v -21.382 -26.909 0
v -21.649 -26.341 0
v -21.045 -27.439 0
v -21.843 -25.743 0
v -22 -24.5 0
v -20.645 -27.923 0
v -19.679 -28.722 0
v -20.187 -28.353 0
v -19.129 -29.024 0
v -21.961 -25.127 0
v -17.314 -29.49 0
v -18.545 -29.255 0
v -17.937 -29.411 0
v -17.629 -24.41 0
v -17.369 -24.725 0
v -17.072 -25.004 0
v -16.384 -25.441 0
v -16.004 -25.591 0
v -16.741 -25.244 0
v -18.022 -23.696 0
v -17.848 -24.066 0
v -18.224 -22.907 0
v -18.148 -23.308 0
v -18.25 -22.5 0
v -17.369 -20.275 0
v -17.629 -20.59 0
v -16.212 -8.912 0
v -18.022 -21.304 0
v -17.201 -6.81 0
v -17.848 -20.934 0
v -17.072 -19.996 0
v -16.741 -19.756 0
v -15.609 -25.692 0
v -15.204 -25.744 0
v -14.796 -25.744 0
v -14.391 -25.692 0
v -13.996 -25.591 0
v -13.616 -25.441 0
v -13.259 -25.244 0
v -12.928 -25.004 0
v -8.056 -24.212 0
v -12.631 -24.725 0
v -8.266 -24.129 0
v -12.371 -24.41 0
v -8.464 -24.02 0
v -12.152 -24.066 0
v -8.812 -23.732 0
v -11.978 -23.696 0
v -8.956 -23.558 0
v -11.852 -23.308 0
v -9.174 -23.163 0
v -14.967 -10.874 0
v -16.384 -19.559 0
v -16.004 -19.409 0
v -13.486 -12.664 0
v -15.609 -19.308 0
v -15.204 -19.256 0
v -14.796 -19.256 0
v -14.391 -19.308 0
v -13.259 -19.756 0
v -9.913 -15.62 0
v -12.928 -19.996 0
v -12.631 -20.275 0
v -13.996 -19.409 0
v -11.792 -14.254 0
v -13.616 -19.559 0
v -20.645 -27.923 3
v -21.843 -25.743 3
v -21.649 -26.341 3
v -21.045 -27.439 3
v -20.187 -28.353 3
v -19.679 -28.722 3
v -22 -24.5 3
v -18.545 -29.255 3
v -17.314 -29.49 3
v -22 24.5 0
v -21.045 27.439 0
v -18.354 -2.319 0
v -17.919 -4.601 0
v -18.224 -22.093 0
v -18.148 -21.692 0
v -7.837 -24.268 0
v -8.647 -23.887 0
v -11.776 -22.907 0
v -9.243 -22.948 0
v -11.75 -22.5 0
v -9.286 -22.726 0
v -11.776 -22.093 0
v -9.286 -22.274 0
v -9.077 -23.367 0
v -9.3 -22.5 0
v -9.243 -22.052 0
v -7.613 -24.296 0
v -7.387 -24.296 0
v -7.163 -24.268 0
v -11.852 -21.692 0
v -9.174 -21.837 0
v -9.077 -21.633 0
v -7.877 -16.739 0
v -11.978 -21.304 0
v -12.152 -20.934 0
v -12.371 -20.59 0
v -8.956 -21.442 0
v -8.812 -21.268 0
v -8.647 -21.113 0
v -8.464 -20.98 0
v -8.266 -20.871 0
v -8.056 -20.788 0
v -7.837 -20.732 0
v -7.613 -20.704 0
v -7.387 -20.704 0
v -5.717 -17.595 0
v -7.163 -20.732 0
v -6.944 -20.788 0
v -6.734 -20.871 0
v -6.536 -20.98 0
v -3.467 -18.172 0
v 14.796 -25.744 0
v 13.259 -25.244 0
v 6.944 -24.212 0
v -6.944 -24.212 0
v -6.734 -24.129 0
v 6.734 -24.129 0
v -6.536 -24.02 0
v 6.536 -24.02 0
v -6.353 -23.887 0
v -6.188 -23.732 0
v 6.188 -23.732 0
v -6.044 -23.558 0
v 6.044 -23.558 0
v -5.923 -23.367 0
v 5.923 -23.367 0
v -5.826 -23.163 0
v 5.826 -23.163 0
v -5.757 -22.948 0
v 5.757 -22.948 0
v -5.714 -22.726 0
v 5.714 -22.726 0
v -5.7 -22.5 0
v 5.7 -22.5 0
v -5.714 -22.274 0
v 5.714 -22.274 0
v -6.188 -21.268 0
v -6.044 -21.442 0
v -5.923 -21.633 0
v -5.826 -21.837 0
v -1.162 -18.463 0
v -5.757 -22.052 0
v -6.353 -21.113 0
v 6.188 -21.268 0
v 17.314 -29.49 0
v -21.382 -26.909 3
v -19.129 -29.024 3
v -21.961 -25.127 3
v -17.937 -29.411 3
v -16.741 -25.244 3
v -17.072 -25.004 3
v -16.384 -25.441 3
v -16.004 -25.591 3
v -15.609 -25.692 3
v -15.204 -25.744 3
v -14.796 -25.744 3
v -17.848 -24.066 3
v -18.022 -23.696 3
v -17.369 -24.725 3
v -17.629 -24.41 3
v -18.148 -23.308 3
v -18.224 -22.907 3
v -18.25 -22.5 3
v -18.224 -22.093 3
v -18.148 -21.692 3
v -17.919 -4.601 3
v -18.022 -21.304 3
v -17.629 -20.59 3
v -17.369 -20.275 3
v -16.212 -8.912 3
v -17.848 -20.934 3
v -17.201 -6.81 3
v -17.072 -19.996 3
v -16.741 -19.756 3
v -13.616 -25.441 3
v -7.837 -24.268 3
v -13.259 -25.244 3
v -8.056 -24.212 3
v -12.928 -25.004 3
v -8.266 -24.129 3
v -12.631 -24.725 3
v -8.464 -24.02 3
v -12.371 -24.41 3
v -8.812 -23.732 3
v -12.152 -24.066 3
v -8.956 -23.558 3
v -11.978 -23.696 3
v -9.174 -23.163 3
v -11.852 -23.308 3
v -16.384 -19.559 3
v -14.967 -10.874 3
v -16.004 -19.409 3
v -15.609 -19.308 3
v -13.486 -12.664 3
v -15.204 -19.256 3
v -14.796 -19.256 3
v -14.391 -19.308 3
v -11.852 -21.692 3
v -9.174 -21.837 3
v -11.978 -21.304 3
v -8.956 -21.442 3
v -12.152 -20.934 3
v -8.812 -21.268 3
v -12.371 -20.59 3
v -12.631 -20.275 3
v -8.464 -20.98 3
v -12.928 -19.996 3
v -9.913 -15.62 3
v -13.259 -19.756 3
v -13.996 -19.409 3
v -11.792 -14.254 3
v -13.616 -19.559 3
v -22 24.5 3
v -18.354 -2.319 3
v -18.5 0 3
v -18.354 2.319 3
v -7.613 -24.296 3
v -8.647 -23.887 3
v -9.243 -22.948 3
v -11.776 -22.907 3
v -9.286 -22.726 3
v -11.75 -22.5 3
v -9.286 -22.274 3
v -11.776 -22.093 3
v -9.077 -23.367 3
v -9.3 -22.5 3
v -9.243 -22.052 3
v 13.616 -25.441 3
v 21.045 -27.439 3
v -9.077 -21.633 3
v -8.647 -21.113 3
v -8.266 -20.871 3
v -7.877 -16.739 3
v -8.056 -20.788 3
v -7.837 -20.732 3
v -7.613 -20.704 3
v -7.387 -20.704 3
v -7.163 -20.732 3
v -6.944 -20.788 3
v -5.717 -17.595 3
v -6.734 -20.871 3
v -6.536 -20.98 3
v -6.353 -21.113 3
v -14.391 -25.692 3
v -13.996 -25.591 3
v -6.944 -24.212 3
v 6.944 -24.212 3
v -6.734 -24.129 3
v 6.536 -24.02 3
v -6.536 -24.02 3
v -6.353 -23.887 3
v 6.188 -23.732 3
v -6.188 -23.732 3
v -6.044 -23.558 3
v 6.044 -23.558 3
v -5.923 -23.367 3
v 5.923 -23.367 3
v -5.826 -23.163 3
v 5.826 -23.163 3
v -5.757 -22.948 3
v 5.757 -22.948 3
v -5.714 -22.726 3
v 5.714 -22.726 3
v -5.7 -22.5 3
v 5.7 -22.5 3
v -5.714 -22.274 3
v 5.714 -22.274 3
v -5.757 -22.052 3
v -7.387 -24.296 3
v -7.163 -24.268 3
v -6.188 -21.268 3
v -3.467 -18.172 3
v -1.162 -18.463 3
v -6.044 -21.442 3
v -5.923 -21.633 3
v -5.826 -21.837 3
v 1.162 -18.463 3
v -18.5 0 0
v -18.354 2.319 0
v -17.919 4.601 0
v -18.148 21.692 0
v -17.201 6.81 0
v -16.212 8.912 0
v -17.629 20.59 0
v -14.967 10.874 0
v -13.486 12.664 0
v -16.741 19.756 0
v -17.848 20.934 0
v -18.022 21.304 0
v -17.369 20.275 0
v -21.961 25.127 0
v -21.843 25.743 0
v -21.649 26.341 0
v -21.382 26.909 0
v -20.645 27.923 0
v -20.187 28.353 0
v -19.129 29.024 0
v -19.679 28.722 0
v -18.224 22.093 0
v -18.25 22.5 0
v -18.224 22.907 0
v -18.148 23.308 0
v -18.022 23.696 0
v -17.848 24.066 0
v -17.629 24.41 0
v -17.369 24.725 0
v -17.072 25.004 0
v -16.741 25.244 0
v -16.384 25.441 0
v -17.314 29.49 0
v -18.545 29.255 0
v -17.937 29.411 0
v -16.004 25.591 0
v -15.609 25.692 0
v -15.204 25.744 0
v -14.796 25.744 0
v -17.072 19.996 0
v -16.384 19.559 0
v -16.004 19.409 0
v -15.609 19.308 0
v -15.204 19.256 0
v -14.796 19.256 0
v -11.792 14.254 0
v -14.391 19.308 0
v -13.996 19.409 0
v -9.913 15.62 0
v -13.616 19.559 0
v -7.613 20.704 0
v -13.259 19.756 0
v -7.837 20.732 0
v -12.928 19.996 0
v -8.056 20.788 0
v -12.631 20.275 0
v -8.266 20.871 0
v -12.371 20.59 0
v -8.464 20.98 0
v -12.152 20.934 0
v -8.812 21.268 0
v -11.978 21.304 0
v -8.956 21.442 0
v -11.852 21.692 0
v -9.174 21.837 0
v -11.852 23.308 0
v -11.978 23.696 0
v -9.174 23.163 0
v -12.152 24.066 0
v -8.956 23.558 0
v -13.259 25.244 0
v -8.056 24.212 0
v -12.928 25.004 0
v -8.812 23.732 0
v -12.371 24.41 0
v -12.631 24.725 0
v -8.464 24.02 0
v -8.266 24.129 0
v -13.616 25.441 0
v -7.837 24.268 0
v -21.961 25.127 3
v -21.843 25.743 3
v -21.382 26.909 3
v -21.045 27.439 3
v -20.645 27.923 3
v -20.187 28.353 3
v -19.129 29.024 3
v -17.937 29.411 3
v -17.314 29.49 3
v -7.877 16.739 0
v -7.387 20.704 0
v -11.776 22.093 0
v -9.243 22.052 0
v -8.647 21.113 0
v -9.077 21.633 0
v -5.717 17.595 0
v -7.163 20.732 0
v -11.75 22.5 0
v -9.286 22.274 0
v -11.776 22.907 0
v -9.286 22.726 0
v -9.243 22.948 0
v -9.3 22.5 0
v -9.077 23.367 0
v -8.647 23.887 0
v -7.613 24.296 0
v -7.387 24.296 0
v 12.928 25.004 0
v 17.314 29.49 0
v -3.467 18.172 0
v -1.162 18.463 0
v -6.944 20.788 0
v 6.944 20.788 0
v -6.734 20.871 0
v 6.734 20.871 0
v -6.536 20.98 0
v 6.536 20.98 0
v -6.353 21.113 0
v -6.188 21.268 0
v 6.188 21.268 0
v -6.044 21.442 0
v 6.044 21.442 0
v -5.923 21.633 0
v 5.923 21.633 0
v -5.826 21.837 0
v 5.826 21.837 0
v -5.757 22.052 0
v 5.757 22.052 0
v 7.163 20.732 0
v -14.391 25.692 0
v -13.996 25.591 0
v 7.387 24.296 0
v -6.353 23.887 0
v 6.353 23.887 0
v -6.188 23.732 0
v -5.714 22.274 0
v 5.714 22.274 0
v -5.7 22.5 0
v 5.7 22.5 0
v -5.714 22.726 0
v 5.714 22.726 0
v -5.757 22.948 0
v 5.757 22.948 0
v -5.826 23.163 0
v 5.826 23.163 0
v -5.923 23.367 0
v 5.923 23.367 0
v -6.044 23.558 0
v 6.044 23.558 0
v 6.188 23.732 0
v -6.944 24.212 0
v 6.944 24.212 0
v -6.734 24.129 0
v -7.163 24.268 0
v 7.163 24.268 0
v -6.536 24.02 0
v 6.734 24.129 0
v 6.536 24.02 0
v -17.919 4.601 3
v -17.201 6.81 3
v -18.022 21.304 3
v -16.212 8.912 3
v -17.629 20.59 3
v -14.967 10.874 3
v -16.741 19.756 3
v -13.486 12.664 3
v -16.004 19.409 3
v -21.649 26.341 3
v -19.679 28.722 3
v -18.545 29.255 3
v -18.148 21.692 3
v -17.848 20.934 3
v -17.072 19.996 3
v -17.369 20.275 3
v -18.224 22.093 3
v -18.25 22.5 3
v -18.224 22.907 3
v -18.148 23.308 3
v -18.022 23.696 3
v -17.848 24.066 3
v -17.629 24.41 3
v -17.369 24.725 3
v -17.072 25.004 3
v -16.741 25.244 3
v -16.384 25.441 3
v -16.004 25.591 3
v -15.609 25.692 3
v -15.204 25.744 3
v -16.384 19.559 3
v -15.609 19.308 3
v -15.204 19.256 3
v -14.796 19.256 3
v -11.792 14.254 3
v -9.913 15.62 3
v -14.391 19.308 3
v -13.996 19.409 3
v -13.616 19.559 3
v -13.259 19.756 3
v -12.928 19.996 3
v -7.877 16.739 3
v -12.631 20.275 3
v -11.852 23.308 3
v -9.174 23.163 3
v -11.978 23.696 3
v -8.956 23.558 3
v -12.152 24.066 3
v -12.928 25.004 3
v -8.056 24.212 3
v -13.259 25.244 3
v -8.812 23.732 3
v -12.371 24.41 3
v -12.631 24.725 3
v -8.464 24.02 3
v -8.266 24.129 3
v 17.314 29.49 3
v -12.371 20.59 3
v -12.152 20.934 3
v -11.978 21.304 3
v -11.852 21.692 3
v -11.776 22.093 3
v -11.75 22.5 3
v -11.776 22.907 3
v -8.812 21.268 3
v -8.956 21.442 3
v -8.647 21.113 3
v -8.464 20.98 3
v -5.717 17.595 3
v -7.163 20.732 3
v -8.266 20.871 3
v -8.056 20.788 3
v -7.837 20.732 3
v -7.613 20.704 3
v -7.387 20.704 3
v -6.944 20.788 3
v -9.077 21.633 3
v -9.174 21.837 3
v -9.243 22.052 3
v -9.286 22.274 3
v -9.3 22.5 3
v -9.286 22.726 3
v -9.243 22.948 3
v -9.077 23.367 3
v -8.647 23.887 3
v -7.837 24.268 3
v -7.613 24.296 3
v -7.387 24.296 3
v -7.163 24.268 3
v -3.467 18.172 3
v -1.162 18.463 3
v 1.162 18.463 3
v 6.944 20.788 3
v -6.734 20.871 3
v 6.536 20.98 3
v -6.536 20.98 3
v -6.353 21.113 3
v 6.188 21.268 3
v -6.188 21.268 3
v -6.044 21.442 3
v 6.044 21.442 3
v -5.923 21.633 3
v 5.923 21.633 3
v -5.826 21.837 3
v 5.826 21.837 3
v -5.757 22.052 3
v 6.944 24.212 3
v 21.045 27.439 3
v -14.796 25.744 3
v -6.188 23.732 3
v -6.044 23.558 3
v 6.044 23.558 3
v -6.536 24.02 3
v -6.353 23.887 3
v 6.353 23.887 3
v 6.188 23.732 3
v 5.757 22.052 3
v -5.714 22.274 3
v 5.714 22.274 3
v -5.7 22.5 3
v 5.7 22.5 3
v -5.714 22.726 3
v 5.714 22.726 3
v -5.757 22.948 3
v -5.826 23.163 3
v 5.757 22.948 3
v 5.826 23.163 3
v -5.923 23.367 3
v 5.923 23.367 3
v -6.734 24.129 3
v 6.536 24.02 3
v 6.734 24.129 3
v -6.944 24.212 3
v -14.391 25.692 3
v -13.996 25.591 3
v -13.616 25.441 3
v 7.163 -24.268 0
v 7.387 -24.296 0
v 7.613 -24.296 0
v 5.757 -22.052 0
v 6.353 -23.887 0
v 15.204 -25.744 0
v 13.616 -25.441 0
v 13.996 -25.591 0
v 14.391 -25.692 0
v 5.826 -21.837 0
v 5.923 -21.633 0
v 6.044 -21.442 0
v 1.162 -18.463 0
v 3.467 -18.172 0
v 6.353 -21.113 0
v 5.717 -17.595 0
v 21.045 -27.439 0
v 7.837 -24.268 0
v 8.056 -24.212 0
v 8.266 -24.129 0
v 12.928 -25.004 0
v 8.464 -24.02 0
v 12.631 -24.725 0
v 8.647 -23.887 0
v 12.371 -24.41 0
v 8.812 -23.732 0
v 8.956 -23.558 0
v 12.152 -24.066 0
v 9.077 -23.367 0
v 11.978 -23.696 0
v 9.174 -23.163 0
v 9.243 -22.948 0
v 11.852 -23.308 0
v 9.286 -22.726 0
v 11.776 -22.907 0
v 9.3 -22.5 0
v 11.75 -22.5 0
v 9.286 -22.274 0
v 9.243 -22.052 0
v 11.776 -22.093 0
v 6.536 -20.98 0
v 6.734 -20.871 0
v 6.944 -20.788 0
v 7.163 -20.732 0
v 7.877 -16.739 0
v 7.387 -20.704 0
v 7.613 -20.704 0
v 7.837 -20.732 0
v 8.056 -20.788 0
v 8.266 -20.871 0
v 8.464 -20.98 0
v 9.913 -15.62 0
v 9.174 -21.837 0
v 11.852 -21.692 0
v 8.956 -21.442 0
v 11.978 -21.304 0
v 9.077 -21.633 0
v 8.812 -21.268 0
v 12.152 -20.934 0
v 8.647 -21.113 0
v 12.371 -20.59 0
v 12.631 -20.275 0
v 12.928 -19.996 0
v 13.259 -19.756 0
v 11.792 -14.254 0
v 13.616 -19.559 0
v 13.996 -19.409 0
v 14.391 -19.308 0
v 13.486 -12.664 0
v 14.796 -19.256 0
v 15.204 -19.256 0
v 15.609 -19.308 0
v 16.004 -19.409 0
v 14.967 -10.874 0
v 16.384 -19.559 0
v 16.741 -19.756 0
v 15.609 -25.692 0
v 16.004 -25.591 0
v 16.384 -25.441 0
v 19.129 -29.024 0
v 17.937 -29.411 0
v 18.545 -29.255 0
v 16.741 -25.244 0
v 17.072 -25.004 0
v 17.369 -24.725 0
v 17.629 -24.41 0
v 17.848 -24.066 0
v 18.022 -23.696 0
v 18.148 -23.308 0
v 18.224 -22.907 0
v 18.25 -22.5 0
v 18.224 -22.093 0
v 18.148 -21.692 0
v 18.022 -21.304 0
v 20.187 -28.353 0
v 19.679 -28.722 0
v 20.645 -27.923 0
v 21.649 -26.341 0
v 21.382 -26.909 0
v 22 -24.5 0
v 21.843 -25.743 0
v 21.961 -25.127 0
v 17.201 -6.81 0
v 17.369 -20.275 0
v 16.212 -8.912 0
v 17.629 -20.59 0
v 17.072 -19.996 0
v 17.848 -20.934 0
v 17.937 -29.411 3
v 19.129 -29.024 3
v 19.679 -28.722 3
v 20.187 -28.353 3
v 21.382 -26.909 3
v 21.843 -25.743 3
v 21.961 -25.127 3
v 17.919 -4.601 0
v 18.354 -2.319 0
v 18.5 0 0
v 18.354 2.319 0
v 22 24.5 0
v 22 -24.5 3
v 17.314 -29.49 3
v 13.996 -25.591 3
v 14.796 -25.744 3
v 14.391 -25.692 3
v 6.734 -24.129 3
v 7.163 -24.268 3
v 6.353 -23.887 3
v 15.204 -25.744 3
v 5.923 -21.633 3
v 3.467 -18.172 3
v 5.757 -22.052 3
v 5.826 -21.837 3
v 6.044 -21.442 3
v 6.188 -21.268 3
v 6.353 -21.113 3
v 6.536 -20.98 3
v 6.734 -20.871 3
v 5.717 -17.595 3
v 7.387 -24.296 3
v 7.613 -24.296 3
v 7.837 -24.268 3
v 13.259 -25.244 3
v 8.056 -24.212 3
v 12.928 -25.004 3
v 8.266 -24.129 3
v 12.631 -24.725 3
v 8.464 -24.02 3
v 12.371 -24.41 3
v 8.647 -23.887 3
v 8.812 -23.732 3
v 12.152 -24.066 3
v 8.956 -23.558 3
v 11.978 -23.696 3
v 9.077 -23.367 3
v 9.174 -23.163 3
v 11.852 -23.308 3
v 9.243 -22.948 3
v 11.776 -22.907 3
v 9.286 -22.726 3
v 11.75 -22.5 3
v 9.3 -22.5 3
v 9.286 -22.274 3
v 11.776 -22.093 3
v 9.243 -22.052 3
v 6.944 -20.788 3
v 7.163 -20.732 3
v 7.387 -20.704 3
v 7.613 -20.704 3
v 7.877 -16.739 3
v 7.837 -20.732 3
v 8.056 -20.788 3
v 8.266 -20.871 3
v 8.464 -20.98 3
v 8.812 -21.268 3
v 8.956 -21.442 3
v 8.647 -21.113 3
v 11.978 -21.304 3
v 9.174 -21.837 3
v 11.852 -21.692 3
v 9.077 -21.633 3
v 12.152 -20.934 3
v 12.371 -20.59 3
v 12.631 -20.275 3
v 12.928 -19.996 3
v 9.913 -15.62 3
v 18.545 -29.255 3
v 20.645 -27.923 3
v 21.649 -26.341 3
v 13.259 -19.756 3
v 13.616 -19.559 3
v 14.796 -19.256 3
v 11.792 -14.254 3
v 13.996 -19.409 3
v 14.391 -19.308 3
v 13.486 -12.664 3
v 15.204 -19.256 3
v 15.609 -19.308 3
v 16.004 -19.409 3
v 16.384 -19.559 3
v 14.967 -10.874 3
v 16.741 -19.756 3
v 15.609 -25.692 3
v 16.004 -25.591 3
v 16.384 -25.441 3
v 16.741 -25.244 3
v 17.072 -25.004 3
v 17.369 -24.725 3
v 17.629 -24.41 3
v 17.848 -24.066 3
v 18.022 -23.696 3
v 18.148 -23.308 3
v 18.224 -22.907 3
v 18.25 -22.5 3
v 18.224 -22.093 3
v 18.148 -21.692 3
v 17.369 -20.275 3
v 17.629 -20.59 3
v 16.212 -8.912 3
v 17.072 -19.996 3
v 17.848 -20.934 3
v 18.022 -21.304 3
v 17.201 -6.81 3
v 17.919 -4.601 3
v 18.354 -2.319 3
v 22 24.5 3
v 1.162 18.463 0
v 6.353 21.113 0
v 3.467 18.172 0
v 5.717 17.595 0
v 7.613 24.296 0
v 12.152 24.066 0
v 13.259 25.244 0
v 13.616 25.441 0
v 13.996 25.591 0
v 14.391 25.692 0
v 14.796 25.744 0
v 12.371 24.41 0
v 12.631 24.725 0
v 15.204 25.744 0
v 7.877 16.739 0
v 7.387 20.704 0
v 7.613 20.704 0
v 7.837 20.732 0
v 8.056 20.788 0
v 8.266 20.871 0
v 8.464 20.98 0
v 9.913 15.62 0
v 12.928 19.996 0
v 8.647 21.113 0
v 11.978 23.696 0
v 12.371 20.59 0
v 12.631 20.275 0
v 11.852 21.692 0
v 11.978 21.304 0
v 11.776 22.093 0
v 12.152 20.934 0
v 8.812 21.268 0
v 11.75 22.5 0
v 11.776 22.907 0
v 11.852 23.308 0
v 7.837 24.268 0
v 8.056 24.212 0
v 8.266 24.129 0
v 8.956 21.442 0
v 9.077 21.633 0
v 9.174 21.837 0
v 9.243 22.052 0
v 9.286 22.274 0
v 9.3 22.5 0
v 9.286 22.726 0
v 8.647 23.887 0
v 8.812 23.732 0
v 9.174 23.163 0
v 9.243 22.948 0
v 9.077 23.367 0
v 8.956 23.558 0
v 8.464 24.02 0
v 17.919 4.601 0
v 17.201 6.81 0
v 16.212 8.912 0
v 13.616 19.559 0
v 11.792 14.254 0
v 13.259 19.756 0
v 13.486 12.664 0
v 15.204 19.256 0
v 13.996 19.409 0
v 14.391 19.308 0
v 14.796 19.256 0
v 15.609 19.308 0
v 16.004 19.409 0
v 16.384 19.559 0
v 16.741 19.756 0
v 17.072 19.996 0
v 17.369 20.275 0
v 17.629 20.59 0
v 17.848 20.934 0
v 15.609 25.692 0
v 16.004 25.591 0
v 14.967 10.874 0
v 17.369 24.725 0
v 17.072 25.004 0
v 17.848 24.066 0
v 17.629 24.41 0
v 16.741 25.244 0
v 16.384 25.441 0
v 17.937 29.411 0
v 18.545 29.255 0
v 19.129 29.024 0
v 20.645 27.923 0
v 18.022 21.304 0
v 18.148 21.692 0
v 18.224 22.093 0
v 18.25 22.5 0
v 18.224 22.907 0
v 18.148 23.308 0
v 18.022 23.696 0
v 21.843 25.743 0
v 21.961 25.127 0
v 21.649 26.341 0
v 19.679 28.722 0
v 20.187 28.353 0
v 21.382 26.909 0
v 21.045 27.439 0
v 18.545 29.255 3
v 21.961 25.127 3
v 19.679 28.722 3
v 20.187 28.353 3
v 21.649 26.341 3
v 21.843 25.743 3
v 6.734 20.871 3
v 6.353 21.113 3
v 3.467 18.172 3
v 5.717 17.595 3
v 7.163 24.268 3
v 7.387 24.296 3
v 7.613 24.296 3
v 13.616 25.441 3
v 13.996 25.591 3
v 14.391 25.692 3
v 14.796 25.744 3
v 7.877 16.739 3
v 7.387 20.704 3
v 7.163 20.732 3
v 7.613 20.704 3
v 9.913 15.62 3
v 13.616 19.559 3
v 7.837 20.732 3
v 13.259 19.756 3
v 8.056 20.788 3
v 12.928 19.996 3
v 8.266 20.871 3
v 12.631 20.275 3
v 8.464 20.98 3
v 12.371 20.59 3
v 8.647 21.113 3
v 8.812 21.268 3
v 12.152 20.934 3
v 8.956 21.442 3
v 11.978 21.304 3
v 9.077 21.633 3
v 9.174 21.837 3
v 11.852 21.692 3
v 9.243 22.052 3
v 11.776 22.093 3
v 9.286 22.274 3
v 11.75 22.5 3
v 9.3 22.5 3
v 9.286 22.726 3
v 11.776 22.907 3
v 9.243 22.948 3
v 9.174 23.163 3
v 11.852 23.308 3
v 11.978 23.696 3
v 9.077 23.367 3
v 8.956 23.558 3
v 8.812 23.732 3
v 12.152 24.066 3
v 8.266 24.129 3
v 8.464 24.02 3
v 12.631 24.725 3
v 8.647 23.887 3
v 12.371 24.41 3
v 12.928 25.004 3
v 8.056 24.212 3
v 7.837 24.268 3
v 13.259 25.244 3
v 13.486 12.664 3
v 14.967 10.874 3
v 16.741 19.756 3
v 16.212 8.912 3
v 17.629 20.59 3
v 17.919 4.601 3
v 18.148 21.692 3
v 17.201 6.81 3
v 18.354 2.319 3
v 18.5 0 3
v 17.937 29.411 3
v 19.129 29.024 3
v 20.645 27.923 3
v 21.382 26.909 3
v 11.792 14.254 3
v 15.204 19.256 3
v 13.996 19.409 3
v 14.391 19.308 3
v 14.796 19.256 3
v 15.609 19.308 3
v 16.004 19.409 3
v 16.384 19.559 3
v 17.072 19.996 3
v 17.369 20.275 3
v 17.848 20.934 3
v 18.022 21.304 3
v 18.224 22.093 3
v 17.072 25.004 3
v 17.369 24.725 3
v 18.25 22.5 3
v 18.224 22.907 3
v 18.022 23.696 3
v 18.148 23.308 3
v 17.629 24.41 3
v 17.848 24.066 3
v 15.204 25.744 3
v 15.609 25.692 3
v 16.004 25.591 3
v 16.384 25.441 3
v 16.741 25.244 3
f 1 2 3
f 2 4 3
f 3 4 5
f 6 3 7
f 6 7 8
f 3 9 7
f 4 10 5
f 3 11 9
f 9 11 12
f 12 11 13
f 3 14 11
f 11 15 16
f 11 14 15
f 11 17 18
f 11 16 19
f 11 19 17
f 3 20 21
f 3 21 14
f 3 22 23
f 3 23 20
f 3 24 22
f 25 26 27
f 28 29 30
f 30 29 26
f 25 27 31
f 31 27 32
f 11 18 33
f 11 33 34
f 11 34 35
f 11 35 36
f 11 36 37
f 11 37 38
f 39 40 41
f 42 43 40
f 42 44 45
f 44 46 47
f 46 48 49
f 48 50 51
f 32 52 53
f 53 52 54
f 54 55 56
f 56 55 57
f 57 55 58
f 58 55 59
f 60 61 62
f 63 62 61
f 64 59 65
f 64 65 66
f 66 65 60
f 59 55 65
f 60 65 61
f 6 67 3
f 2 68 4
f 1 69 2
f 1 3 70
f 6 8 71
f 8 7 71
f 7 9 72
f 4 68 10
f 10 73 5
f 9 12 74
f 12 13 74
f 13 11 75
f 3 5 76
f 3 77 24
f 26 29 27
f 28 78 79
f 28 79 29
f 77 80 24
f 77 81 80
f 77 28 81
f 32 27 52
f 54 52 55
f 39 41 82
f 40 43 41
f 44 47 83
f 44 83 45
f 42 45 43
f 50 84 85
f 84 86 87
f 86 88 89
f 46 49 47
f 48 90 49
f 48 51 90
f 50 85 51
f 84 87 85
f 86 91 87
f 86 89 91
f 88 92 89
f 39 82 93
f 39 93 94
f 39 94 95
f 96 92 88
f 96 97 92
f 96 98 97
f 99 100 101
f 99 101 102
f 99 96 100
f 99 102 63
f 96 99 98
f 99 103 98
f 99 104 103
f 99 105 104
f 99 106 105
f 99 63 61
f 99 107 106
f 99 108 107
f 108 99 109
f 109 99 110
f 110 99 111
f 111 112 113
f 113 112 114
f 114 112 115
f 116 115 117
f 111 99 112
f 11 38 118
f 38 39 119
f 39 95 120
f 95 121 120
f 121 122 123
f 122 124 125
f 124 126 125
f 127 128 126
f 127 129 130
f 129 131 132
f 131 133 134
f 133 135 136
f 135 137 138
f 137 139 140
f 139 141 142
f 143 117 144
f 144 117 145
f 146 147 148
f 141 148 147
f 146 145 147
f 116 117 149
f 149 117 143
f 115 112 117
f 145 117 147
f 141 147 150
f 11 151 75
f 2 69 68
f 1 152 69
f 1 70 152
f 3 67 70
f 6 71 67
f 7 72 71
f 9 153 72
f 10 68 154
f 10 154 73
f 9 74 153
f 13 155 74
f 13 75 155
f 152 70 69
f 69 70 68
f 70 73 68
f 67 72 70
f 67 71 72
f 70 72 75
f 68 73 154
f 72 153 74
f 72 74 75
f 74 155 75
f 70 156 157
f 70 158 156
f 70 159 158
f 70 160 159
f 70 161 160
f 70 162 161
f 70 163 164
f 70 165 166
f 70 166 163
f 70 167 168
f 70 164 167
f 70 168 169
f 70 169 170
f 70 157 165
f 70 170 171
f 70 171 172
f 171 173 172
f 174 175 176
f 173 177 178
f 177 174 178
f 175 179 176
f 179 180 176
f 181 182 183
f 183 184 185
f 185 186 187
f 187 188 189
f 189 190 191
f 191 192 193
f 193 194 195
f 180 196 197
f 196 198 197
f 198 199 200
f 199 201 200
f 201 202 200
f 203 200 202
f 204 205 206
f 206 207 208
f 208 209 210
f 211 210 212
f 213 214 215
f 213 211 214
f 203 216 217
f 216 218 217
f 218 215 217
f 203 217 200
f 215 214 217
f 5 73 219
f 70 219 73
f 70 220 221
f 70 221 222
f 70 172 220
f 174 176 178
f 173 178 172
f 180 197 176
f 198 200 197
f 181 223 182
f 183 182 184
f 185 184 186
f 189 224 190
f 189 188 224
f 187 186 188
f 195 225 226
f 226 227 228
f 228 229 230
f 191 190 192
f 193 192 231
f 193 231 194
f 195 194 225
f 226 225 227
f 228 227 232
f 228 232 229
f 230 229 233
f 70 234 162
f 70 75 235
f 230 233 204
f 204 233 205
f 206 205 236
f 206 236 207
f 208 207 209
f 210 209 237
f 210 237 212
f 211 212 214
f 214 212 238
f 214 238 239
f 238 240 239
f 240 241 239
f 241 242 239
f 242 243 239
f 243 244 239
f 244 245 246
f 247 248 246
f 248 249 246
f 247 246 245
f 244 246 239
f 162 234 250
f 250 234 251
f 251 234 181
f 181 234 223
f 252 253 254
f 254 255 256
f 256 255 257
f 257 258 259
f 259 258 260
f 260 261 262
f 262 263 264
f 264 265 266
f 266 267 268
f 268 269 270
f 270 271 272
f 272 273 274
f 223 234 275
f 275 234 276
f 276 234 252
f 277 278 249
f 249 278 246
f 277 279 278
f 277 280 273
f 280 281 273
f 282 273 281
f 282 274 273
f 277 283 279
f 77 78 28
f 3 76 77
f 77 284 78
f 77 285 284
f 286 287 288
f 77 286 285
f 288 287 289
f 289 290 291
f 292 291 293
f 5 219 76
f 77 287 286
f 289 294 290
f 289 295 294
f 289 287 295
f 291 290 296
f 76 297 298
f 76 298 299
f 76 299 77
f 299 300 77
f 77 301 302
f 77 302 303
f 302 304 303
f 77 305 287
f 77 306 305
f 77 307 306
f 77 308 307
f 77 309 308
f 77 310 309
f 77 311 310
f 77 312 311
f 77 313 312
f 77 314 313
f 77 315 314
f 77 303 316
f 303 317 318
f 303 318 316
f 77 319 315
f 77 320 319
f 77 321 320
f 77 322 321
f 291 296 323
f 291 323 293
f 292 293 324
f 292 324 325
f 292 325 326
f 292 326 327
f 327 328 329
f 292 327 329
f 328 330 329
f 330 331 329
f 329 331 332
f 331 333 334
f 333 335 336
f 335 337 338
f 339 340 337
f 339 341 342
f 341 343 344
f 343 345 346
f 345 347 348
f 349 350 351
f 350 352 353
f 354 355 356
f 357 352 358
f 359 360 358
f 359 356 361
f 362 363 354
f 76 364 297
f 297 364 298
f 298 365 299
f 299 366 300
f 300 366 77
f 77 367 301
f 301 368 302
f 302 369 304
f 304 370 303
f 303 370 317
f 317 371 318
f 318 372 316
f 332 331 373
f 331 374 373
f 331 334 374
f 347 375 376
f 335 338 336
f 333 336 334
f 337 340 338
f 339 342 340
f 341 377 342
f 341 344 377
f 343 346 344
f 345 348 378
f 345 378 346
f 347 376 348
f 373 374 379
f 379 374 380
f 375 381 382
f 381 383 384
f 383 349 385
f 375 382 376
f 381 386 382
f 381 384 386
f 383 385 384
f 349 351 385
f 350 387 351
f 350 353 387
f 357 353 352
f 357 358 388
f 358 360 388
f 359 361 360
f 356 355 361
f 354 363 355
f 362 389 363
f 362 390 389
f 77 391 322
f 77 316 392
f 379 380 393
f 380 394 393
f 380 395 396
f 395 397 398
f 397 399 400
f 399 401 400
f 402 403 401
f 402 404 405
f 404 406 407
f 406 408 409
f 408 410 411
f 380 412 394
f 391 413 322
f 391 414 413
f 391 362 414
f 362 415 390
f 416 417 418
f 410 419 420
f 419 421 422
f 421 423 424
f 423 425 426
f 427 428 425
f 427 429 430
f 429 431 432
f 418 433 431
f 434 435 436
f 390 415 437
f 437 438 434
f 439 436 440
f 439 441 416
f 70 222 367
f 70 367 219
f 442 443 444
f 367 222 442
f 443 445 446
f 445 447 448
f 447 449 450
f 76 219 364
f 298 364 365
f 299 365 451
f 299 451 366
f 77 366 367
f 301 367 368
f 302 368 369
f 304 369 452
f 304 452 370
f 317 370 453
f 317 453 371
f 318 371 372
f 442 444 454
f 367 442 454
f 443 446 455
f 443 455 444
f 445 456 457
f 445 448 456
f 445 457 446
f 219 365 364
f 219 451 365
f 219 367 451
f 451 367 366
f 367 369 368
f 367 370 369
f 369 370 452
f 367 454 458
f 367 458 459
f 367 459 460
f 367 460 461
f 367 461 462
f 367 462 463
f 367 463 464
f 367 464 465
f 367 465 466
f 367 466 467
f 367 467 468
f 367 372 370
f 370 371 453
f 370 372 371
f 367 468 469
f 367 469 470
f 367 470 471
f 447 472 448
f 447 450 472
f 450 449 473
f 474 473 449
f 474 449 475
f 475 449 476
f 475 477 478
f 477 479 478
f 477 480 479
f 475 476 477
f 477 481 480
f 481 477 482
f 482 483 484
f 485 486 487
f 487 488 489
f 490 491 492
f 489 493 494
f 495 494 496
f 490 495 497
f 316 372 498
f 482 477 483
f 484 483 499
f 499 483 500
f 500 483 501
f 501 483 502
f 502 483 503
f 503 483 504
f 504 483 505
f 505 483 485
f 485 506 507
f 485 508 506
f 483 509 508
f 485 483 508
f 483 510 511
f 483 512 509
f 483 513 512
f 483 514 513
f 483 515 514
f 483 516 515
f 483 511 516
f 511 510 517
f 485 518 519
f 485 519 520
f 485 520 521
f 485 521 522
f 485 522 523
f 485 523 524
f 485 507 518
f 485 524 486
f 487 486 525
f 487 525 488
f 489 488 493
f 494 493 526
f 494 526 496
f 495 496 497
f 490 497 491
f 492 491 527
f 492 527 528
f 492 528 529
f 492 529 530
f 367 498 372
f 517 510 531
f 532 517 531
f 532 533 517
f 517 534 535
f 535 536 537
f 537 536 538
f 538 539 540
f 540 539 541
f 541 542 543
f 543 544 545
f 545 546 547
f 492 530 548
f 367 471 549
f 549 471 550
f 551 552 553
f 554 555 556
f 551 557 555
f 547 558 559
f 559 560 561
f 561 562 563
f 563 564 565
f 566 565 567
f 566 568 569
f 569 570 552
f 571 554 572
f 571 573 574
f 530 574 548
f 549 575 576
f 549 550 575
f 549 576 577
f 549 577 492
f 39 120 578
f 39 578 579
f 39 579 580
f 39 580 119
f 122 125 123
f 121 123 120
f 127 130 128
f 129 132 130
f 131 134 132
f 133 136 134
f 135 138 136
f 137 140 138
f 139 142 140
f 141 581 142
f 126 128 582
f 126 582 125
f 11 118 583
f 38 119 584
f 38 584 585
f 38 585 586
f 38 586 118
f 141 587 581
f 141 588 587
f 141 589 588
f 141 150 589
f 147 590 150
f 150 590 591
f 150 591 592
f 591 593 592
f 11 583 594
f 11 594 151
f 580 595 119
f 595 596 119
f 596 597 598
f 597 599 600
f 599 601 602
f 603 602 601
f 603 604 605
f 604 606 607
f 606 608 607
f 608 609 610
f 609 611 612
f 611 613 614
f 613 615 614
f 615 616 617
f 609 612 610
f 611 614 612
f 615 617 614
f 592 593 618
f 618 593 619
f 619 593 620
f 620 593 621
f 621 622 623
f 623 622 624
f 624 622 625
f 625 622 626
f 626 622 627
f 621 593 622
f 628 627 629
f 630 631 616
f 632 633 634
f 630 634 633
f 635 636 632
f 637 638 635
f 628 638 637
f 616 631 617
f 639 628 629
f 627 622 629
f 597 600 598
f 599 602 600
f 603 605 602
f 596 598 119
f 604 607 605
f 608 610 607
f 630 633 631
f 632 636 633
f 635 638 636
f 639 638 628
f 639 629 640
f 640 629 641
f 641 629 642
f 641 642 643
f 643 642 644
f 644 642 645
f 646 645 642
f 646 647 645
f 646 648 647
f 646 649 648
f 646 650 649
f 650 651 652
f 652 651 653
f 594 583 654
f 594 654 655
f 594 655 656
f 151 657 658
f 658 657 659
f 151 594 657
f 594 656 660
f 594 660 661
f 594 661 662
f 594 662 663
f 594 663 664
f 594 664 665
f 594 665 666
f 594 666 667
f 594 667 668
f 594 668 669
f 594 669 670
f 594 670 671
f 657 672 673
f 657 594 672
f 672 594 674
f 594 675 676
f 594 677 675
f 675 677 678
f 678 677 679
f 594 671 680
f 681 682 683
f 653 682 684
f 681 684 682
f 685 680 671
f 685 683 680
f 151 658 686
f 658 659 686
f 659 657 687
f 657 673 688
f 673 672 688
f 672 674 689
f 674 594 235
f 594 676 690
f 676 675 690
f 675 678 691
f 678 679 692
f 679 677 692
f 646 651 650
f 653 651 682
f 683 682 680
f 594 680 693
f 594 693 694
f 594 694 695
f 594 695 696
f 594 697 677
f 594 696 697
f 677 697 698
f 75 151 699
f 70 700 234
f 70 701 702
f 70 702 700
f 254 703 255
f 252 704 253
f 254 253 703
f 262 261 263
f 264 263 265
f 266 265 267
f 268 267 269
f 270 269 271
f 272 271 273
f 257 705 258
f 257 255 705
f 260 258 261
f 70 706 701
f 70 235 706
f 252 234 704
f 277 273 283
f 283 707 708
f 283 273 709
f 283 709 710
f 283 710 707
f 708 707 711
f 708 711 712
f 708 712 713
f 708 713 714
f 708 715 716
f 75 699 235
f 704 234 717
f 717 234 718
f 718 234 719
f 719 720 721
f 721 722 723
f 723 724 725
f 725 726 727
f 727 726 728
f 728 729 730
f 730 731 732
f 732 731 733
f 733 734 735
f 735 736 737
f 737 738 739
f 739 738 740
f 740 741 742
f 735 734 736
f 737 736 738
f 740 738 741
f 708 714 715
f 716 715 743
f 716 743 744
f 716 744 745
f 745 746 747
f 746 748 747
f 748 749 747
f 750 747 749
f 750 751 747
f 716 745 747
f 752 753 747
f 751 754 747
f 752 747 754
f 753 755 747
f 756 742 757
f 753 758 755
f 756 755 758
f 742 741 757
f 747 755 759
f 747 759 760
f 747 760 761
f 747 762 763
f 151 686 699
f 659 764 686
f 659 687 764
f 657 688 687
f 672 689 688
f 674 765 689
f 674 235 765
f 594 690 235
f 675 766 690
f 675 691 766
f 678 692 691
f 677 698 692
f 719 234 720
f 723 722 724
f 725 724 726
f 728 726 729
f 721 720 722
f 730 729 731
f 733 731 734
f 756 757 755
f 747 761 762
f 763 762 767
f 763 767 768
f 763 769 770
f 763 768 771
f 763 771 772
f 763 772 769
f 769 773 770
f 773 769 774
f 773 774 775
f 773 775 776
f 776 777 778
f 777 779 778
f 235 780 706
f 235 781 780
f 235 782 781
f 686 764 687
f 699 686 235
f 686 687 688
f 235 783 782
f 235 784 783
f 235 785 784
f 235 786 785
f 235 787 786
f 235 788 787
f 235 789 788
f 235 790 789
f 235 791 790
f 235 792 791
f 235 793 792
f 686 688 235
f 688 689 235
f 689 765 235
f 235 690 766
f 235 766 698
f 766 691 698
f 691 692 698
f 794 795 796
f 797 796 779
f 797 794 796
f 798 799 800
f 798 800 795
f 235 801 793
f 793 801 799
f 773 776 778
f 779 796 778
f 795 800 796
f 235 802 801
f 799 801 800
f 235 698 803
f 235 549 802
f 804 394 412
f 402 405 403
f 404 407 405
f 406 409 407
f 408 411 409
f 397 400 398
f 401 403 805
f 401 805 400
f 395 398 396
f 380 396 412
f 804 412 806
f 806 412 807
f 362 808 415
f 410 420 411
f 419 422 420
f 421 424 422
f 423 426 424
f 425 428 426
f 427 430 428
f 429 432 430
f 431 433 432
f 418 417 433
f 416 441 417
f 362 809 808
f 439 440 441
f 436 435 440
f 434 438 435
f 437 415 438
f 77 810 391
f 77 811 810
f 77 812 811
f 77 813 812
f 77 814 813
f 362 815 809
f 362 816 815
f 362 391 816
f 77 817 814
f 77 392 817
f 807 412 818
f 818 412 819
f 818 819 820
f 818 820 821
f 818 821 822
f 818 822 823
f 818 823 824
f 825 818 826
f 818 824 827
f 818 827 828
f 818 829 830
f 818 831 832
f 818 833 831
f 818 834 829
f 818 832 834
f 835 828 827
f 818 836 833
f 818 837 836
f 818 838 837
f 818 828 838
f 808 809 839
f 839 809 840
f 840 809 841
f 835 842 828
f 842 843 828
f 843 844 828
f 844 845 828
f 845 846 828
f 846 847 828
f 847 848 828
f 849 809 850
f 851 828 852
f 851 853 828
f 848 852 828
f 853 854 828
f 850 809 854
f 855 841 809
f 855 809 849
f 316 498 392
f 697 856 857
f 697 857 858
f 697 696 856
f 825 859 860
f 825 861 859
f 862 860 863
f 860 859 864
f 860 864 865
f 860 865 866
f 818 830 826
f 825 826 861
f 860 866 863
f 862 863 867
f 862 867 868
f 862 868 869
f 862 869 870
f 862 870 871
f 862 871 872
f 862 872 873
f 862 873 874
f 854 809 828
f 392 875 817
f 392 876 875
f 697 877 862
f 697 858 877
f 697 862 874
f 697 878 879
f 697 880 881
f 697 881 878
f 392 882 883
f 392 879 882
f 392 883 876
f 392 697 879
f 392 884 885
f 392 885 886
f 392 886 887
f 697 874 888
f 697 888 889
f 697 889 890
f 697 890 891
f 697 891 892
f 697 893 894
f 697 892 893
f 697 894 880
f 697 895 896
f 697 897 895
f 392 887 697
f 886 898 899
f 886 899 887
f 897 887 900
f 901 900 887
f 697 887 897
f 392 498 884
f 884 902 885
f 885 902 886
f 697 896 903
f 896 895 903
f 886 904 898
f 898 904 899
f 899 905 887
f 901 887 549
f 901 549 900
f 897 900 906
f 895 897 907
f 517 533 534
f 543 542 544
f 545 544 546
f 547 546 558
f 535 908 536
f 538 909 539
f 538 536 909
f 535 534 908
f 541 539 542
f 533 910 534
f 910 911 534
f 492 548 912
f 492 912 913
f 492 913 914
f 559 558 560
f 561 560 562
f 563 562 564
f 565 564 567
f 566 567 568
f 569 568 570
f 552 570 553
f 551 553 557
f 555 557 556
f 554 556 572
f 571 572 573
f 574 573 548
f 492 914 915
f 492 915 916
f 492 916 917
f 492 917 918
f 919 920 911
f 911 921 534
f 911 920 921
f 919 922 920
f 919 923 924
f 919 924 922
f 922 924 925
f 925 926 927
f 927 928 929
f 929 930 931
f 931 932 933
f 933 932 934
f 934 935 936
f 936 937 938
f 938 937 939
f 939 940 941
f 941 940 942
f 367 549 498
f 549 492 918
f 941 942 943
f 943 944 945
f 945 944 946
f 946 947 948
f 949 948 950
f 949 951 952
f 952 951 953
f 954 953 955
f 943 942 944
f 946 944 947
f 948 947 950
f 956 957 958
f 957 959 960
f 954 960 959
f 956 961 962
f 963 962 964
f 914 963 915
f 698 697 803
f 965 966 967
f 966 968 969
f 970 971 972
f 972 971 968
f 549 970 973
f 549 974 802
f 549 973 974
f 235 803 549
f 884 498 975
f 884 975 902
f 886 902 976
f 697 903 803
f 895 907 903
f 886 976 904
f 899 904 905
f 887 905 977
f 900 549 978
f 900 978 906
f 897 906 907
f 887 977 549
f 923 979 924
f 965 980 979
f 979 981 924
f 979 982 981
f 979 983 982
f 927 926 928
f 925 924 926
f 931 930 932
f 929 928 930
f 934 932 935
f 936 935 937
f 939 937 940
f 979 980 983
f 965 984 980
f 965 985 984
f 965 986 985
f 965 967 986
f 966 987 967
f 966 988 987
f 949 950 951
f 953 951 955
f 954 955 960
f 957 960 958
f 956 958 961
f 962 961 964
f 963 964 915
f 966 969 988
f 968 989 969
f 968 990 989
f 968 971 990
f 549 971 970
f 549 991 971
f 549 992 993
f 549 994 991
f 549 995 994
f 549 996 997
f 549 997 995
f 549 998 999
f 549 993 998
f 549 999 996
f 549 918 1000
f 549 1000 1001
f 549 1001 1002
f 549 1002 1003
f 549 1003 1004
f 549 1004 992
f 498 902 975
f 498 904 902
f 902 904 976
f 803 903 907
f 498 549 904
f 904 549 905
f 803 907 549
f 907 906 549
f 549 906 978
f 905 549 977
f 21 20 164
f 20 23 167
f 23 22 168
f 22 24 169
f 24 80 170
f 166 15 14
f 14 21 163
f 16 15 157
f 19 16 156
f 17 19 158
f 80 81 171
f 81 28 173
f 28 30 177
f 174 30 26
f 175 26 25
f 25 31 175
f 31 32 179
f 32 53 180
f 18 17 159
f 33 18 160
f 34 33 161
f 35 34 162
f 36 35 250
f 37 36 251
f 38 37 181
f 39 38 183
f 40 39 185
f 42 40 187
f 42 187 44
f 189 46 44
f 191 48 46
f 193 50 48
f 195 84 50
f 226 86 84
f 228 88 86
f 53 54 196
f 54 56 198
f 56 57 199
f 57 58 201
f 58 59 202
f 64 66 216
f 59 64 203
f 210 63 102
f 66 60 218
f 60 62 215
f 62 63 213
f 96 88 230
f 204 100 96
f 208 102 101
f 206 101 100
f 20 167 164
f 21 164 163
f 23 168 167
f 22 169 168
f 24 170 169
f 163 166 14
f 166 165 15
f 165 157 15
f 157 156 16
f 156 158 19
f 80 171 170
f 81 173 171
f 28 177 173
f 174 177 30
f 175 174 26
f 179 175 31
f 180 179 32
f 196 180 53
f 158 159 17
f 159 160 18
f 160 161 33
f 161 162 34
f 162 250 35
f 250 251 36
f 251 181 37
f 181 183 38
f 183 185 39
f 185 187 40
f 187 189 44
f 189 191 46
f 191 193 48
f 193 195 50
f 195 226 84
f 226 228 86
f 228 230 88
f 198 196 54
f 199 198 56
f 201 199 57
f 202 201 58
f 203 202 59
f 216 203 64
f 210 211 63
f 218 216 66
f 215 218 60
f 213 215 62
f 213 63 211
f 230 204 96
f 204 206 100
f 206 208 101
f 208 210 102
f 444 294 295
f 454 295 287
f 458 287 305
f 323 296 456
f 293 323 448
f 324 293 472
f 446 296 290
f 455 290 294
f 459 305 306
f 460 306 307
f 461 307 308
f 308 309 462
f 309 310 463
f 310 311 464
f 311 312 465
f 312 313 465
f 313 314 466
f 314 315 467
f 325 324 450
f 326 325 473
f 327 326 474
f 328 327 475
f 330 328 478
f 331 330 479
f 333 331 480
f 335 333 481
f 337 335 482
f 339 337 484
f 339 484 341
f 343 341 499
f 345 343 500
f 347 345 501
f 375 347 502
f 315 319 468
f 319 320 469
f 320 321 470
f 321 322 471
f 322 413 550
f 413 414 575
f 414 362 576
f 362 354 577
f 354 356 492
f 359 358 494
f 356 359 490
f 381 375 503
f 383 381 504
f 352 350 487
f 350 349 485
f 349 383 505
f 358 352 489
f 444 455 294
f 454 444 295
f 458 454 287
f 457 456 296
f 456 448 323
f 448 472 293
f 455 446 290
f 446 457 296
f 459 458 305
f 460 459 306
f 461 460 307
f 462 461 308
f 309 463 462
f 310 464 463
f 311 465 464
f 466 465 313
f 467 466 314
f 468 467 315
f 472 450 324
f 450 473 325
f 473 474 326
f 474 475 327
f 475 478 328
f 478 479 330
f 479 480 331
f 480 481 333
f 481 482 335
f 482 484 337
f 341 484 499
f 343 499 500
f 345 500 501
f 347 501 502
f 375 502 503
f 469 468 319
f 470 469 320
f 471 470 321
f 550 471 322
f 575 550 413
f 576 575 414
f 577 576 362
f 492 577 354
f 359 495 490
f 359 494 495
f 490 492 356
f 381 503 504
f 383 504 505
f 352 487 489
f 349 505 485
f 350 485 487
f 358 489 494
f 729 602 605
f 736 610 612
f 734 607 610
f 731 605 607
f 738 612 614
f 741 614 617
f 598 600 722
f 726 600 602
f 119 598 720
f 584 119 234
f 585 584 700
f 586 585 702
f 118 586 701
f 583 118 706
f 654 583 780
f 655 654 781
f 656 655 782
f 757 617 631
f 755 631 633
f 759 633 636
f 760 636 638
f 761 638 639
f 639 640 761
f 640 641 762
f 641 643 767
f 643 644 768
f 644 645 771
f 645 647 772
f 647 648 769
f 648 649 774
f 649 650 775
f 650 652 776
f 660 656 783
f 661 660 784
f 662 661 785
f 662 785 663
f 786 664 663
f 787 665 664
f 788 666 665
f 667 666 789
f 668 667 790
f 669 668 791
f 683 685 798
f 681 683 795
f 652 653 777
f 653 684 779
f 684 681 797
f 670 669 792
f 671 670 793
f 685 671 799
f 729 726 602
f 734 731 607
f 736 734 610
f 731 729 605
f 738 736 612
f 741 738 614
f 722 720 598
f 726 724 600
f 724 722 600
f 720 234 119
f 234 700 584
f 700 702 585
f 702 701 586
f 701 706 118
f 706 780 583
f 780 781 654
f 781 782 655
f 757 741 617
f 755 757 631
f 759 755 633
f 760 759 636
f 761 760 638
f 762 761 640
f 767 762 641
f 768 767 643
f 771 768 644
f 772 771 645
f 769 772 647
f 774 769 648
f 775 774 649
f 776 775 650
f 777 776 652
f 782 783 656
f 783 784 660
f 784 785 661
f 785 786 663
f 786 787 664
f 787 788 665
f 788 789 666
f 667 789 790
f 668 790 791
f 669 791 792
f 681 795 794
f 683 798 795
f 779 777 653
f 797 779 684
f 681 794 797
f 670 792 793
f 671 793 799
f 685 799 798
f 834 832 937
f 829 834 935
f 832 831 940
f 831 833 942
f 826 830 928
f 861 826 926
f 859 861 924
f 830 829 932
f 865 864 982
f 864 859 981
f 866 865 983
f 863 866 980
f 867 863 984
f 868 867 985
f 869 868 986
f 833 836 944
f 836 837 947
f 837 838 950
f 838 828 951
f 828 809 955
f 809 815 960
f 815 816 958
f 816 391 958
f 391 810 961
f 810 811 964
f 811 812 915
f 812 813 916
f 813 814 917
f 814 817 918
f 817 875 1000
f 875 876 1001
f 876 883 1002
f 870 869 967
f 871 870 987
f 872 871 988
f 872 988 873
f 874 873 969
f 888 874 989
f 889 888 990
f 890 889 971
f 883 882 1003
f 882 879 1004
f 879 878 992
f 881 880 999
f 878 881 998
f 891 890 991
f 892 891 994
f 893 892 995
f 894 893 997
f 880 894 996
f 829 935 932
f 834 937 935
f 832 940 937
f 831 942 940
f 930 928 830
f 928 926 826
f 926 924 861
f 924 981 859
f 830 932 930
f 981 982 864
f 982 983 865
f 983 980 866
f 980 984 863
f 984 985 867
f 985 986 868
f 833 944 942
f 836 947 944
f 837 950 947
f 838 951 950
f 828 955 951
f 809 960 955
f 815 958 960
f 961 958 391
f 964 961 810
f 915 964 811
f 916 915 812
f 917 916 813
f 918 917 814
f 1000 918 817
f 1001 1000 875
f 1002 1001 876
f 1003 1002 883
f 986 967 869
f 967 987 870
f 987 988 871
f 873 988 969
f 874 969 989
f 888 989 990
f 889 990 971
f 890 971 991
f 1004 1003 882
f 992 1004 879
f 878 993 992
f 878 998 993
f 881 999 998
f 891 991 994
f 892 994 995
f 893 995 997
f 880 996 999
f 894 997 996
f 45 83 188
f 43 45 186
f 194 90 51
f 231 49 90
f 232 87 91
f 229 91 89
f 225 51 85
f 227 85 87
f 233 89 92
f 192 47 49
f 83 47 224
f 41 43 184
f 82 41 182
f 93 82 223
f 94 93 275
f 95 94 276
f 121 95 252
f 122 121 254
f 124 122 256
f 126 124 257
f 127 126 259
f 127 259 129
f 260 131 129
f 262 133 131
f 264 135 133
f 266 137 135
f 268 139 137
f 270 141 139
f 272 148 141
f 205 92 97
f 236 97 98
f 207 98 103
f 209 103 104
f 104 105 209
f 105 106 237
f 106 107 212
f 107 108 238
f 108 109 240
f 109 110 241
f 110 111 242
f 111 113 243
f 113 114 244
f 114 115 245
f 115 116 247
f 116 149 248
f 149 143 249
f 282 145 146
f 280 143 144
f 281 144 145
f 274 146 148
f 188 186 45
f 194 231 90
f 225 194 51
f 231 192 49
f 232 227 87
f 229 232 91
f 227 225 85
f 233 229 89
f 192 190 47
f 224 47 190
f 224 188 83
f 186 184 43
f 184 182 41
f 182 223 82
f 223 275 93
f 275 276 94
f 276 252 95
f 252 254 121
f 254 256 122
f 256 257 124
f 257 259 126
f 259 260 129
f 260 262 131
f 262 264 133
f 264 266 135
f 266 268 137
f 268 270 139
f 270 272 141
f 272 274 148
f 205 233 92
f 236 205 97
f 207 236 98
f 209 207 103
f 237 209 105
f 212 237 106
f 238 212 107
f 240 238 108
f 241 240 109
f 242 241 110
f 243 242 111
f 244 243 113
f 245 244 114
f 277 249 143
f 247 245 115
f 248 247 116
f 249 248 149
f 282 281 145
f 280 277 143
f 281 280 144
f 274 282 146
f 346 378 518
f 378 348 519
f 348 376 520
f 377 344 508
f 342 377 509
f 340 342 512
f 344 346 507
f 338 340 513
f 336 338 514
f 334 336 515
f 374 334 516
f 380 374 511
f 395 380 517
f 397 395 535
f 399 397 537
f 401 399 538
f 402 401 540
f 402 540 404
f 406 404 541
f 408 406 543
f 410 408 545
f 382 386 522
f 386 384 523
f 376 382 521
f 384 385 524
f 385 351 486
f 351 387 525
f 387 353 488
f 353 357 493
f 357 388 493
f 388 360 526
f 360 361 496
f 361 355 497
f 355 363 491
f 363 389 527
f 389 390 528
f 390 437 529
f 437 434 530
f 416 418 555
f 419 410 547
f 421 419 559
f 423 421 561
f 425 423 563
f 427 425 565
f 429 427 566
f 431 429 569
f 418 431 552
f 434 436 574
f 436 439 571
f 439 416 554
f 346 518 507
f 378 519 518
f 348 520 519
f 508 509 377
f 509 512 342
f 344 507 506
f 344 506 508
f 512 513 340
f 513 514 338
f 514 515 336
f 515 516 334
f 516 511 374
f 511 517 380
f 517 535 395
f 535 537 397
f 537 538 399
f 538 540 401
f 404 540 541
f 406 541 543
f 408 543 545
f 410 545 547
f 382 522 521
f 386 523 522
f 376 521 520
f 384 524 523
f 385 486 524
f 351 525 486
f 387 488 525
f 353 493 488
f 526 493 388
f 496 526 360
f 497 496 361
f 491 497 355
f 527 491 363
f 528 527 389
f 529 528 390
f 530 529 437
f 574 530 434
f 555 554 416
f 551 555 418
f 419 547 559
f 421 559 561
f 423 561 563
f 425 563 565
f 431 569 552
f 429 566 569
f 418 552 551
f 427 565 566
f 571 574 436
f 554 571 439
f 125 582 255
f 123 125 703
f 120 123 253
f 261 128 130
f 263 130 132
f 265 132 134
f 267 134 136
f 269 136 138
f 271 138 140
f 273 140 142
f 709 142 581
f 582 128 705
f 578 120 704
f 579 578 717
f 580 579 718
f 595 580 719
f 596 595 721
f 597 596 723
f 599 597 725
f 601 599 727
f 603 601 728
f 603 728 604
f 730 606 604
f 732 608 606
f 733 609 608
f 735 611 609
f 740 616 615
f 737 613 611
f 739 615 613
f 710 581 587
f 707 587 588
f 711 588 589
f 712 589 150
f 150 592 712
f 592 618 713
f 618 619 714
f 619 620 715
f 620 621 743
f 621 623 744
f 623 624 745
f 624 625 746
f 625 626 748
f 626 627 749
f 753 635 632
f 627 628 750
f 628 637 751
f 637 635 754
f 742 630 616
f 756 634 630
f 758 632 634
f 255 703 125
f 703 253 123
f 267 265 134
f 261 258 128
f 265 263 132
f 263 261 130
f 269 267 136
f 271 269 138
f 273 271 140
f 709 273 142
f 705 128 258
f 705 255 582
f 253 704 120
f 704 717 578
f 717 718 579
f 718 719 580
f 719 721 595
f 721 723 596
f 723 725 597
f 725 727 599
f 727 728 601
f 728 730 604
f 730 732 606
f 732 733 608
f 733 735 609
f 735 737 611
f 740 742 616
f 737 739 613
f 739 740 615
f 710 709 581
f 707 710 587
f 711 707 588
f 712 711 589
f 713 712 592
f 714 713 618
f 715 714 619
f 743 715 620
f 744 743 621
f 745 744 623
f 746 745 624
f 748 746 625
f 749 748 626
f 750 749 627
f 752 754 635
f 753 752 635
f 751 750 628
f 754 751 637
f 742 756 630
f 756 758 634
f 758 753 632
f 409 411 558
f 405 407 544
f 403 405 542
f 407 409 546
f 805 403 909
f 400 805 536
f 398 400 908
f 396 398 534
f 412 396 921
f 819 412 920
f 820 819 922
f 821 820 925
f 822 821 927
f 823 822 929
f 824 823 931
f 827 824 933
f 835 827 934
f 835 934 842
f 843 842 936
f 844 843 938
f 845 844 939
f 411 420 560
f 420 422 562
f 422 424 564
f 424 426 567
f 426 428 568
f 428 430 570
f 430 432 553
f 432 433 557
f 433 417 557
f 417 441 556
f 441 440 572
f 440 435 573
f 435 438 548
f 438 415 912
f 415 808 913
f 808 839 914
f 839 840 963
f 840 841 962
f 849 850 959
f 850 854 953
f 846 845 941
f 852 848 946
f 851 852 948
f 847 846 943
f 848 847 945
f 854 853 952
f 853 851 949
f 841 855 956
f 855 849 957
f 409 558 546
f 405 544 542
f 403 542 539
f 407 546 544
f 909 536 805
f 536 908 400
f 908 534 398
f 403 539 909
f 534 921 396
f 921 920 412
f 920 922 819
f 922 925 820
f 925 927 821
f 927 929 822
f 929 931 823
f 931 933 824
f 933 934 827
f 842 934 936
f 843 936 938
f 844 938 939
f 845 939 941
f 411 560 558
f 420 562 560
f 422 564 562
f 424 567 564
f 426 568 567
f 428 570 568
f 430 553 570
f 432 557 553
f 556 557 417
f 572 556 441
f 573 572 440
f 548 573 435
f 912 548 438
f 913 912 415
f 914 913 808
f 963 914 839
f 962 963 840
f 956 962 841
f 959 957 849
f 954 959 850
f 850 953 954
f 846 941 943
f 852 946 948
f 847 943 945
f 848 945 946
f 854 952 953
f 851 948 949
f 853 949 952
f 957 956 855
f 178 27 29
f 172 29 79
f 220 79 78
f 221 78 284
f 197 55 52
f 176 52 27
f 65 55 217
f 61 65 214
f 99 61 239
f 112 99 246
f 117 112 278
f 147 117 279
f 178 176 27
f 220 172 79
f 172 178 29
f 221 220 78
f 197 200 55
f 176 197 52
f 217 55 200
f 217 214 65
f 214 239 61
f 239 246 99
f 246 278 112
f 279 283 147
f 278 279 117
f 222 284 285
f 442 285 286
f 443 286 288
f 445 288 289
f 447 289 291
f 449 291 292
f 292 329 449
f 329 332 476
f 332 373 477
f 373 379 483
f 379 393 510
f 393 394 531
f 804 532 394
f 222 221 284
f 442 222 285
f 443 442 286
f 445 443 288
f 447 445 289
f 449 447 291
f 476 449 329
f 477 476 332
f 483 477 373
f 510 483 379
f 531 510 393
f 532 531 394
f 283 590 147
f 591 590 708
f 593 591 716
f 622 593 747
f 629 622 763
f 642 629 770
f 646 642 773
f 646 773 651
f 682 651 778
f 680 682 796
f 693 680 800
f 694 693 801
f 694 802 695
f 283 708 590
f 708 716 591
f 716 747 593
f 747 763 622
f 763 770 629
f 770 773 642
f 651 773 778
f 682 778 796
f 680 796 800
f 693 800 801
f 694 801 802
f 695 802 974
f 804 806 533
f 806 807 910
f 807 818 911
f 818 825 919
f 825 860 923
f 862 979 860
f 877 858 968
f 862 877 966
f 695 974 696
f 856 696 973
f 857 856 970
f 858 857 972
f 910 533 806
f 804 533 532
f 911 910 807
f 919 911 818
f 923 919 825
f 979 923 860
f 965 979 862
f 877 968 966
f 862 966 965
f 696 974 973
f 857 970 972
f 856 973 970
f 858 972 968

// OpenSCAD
$fn = 50;

difference() {
	union() {
		hull() {
			translate(v = [-17.0, 24.5, 0]) {
				cylinder(h = 3, r = 5);
			}
			translate(v = [17.0, 24.5, 0]) {
				cylinder(h = 3, r = 5);
			}
			translate(v = [-17.0, -24.5, 0]) {
				cylinder(h = 3, r = 5);
			}
			translate(v = [17.0, -24.5, 0]) {
				cylinder(h = 3, r = 5);
			}
		}
	}
	union() {
		translate(v = [-15.0, -22.5, 0]) {
			cylinder(h = 3, r = 3.25);
		}
		translate(v = [-15.0, 22.5, 0]) {
			cylinder(h = 3, r = 3.25);
		}
		translate(v = [15.0, -22.5, 0]) {
			cylinder(h = 3, r = 3.25);
		}
		translate(v = [15.0, 22.5, 0]) {
			cylinder(h = 3, r = 3.25);
		}
		translate(v = [-7.5, -22.5, 0]) {
			cylinder(h = 3, r = 1.8);
		}
		translate(v = [-7.5, 22.5, 0]) {
			cylinder(h = 3, r = 1.8);
		}
		translate(v = [7.5, -22.5, 0]) {
			cylinder(h = 3, r = 1.8);
		}
		translate(v = [7.5, 22.5, 0]) {
			cylinder(h = 3, r = 1.8);
		}
		cylinder(h = 3, r = 18.5);
	}
}
